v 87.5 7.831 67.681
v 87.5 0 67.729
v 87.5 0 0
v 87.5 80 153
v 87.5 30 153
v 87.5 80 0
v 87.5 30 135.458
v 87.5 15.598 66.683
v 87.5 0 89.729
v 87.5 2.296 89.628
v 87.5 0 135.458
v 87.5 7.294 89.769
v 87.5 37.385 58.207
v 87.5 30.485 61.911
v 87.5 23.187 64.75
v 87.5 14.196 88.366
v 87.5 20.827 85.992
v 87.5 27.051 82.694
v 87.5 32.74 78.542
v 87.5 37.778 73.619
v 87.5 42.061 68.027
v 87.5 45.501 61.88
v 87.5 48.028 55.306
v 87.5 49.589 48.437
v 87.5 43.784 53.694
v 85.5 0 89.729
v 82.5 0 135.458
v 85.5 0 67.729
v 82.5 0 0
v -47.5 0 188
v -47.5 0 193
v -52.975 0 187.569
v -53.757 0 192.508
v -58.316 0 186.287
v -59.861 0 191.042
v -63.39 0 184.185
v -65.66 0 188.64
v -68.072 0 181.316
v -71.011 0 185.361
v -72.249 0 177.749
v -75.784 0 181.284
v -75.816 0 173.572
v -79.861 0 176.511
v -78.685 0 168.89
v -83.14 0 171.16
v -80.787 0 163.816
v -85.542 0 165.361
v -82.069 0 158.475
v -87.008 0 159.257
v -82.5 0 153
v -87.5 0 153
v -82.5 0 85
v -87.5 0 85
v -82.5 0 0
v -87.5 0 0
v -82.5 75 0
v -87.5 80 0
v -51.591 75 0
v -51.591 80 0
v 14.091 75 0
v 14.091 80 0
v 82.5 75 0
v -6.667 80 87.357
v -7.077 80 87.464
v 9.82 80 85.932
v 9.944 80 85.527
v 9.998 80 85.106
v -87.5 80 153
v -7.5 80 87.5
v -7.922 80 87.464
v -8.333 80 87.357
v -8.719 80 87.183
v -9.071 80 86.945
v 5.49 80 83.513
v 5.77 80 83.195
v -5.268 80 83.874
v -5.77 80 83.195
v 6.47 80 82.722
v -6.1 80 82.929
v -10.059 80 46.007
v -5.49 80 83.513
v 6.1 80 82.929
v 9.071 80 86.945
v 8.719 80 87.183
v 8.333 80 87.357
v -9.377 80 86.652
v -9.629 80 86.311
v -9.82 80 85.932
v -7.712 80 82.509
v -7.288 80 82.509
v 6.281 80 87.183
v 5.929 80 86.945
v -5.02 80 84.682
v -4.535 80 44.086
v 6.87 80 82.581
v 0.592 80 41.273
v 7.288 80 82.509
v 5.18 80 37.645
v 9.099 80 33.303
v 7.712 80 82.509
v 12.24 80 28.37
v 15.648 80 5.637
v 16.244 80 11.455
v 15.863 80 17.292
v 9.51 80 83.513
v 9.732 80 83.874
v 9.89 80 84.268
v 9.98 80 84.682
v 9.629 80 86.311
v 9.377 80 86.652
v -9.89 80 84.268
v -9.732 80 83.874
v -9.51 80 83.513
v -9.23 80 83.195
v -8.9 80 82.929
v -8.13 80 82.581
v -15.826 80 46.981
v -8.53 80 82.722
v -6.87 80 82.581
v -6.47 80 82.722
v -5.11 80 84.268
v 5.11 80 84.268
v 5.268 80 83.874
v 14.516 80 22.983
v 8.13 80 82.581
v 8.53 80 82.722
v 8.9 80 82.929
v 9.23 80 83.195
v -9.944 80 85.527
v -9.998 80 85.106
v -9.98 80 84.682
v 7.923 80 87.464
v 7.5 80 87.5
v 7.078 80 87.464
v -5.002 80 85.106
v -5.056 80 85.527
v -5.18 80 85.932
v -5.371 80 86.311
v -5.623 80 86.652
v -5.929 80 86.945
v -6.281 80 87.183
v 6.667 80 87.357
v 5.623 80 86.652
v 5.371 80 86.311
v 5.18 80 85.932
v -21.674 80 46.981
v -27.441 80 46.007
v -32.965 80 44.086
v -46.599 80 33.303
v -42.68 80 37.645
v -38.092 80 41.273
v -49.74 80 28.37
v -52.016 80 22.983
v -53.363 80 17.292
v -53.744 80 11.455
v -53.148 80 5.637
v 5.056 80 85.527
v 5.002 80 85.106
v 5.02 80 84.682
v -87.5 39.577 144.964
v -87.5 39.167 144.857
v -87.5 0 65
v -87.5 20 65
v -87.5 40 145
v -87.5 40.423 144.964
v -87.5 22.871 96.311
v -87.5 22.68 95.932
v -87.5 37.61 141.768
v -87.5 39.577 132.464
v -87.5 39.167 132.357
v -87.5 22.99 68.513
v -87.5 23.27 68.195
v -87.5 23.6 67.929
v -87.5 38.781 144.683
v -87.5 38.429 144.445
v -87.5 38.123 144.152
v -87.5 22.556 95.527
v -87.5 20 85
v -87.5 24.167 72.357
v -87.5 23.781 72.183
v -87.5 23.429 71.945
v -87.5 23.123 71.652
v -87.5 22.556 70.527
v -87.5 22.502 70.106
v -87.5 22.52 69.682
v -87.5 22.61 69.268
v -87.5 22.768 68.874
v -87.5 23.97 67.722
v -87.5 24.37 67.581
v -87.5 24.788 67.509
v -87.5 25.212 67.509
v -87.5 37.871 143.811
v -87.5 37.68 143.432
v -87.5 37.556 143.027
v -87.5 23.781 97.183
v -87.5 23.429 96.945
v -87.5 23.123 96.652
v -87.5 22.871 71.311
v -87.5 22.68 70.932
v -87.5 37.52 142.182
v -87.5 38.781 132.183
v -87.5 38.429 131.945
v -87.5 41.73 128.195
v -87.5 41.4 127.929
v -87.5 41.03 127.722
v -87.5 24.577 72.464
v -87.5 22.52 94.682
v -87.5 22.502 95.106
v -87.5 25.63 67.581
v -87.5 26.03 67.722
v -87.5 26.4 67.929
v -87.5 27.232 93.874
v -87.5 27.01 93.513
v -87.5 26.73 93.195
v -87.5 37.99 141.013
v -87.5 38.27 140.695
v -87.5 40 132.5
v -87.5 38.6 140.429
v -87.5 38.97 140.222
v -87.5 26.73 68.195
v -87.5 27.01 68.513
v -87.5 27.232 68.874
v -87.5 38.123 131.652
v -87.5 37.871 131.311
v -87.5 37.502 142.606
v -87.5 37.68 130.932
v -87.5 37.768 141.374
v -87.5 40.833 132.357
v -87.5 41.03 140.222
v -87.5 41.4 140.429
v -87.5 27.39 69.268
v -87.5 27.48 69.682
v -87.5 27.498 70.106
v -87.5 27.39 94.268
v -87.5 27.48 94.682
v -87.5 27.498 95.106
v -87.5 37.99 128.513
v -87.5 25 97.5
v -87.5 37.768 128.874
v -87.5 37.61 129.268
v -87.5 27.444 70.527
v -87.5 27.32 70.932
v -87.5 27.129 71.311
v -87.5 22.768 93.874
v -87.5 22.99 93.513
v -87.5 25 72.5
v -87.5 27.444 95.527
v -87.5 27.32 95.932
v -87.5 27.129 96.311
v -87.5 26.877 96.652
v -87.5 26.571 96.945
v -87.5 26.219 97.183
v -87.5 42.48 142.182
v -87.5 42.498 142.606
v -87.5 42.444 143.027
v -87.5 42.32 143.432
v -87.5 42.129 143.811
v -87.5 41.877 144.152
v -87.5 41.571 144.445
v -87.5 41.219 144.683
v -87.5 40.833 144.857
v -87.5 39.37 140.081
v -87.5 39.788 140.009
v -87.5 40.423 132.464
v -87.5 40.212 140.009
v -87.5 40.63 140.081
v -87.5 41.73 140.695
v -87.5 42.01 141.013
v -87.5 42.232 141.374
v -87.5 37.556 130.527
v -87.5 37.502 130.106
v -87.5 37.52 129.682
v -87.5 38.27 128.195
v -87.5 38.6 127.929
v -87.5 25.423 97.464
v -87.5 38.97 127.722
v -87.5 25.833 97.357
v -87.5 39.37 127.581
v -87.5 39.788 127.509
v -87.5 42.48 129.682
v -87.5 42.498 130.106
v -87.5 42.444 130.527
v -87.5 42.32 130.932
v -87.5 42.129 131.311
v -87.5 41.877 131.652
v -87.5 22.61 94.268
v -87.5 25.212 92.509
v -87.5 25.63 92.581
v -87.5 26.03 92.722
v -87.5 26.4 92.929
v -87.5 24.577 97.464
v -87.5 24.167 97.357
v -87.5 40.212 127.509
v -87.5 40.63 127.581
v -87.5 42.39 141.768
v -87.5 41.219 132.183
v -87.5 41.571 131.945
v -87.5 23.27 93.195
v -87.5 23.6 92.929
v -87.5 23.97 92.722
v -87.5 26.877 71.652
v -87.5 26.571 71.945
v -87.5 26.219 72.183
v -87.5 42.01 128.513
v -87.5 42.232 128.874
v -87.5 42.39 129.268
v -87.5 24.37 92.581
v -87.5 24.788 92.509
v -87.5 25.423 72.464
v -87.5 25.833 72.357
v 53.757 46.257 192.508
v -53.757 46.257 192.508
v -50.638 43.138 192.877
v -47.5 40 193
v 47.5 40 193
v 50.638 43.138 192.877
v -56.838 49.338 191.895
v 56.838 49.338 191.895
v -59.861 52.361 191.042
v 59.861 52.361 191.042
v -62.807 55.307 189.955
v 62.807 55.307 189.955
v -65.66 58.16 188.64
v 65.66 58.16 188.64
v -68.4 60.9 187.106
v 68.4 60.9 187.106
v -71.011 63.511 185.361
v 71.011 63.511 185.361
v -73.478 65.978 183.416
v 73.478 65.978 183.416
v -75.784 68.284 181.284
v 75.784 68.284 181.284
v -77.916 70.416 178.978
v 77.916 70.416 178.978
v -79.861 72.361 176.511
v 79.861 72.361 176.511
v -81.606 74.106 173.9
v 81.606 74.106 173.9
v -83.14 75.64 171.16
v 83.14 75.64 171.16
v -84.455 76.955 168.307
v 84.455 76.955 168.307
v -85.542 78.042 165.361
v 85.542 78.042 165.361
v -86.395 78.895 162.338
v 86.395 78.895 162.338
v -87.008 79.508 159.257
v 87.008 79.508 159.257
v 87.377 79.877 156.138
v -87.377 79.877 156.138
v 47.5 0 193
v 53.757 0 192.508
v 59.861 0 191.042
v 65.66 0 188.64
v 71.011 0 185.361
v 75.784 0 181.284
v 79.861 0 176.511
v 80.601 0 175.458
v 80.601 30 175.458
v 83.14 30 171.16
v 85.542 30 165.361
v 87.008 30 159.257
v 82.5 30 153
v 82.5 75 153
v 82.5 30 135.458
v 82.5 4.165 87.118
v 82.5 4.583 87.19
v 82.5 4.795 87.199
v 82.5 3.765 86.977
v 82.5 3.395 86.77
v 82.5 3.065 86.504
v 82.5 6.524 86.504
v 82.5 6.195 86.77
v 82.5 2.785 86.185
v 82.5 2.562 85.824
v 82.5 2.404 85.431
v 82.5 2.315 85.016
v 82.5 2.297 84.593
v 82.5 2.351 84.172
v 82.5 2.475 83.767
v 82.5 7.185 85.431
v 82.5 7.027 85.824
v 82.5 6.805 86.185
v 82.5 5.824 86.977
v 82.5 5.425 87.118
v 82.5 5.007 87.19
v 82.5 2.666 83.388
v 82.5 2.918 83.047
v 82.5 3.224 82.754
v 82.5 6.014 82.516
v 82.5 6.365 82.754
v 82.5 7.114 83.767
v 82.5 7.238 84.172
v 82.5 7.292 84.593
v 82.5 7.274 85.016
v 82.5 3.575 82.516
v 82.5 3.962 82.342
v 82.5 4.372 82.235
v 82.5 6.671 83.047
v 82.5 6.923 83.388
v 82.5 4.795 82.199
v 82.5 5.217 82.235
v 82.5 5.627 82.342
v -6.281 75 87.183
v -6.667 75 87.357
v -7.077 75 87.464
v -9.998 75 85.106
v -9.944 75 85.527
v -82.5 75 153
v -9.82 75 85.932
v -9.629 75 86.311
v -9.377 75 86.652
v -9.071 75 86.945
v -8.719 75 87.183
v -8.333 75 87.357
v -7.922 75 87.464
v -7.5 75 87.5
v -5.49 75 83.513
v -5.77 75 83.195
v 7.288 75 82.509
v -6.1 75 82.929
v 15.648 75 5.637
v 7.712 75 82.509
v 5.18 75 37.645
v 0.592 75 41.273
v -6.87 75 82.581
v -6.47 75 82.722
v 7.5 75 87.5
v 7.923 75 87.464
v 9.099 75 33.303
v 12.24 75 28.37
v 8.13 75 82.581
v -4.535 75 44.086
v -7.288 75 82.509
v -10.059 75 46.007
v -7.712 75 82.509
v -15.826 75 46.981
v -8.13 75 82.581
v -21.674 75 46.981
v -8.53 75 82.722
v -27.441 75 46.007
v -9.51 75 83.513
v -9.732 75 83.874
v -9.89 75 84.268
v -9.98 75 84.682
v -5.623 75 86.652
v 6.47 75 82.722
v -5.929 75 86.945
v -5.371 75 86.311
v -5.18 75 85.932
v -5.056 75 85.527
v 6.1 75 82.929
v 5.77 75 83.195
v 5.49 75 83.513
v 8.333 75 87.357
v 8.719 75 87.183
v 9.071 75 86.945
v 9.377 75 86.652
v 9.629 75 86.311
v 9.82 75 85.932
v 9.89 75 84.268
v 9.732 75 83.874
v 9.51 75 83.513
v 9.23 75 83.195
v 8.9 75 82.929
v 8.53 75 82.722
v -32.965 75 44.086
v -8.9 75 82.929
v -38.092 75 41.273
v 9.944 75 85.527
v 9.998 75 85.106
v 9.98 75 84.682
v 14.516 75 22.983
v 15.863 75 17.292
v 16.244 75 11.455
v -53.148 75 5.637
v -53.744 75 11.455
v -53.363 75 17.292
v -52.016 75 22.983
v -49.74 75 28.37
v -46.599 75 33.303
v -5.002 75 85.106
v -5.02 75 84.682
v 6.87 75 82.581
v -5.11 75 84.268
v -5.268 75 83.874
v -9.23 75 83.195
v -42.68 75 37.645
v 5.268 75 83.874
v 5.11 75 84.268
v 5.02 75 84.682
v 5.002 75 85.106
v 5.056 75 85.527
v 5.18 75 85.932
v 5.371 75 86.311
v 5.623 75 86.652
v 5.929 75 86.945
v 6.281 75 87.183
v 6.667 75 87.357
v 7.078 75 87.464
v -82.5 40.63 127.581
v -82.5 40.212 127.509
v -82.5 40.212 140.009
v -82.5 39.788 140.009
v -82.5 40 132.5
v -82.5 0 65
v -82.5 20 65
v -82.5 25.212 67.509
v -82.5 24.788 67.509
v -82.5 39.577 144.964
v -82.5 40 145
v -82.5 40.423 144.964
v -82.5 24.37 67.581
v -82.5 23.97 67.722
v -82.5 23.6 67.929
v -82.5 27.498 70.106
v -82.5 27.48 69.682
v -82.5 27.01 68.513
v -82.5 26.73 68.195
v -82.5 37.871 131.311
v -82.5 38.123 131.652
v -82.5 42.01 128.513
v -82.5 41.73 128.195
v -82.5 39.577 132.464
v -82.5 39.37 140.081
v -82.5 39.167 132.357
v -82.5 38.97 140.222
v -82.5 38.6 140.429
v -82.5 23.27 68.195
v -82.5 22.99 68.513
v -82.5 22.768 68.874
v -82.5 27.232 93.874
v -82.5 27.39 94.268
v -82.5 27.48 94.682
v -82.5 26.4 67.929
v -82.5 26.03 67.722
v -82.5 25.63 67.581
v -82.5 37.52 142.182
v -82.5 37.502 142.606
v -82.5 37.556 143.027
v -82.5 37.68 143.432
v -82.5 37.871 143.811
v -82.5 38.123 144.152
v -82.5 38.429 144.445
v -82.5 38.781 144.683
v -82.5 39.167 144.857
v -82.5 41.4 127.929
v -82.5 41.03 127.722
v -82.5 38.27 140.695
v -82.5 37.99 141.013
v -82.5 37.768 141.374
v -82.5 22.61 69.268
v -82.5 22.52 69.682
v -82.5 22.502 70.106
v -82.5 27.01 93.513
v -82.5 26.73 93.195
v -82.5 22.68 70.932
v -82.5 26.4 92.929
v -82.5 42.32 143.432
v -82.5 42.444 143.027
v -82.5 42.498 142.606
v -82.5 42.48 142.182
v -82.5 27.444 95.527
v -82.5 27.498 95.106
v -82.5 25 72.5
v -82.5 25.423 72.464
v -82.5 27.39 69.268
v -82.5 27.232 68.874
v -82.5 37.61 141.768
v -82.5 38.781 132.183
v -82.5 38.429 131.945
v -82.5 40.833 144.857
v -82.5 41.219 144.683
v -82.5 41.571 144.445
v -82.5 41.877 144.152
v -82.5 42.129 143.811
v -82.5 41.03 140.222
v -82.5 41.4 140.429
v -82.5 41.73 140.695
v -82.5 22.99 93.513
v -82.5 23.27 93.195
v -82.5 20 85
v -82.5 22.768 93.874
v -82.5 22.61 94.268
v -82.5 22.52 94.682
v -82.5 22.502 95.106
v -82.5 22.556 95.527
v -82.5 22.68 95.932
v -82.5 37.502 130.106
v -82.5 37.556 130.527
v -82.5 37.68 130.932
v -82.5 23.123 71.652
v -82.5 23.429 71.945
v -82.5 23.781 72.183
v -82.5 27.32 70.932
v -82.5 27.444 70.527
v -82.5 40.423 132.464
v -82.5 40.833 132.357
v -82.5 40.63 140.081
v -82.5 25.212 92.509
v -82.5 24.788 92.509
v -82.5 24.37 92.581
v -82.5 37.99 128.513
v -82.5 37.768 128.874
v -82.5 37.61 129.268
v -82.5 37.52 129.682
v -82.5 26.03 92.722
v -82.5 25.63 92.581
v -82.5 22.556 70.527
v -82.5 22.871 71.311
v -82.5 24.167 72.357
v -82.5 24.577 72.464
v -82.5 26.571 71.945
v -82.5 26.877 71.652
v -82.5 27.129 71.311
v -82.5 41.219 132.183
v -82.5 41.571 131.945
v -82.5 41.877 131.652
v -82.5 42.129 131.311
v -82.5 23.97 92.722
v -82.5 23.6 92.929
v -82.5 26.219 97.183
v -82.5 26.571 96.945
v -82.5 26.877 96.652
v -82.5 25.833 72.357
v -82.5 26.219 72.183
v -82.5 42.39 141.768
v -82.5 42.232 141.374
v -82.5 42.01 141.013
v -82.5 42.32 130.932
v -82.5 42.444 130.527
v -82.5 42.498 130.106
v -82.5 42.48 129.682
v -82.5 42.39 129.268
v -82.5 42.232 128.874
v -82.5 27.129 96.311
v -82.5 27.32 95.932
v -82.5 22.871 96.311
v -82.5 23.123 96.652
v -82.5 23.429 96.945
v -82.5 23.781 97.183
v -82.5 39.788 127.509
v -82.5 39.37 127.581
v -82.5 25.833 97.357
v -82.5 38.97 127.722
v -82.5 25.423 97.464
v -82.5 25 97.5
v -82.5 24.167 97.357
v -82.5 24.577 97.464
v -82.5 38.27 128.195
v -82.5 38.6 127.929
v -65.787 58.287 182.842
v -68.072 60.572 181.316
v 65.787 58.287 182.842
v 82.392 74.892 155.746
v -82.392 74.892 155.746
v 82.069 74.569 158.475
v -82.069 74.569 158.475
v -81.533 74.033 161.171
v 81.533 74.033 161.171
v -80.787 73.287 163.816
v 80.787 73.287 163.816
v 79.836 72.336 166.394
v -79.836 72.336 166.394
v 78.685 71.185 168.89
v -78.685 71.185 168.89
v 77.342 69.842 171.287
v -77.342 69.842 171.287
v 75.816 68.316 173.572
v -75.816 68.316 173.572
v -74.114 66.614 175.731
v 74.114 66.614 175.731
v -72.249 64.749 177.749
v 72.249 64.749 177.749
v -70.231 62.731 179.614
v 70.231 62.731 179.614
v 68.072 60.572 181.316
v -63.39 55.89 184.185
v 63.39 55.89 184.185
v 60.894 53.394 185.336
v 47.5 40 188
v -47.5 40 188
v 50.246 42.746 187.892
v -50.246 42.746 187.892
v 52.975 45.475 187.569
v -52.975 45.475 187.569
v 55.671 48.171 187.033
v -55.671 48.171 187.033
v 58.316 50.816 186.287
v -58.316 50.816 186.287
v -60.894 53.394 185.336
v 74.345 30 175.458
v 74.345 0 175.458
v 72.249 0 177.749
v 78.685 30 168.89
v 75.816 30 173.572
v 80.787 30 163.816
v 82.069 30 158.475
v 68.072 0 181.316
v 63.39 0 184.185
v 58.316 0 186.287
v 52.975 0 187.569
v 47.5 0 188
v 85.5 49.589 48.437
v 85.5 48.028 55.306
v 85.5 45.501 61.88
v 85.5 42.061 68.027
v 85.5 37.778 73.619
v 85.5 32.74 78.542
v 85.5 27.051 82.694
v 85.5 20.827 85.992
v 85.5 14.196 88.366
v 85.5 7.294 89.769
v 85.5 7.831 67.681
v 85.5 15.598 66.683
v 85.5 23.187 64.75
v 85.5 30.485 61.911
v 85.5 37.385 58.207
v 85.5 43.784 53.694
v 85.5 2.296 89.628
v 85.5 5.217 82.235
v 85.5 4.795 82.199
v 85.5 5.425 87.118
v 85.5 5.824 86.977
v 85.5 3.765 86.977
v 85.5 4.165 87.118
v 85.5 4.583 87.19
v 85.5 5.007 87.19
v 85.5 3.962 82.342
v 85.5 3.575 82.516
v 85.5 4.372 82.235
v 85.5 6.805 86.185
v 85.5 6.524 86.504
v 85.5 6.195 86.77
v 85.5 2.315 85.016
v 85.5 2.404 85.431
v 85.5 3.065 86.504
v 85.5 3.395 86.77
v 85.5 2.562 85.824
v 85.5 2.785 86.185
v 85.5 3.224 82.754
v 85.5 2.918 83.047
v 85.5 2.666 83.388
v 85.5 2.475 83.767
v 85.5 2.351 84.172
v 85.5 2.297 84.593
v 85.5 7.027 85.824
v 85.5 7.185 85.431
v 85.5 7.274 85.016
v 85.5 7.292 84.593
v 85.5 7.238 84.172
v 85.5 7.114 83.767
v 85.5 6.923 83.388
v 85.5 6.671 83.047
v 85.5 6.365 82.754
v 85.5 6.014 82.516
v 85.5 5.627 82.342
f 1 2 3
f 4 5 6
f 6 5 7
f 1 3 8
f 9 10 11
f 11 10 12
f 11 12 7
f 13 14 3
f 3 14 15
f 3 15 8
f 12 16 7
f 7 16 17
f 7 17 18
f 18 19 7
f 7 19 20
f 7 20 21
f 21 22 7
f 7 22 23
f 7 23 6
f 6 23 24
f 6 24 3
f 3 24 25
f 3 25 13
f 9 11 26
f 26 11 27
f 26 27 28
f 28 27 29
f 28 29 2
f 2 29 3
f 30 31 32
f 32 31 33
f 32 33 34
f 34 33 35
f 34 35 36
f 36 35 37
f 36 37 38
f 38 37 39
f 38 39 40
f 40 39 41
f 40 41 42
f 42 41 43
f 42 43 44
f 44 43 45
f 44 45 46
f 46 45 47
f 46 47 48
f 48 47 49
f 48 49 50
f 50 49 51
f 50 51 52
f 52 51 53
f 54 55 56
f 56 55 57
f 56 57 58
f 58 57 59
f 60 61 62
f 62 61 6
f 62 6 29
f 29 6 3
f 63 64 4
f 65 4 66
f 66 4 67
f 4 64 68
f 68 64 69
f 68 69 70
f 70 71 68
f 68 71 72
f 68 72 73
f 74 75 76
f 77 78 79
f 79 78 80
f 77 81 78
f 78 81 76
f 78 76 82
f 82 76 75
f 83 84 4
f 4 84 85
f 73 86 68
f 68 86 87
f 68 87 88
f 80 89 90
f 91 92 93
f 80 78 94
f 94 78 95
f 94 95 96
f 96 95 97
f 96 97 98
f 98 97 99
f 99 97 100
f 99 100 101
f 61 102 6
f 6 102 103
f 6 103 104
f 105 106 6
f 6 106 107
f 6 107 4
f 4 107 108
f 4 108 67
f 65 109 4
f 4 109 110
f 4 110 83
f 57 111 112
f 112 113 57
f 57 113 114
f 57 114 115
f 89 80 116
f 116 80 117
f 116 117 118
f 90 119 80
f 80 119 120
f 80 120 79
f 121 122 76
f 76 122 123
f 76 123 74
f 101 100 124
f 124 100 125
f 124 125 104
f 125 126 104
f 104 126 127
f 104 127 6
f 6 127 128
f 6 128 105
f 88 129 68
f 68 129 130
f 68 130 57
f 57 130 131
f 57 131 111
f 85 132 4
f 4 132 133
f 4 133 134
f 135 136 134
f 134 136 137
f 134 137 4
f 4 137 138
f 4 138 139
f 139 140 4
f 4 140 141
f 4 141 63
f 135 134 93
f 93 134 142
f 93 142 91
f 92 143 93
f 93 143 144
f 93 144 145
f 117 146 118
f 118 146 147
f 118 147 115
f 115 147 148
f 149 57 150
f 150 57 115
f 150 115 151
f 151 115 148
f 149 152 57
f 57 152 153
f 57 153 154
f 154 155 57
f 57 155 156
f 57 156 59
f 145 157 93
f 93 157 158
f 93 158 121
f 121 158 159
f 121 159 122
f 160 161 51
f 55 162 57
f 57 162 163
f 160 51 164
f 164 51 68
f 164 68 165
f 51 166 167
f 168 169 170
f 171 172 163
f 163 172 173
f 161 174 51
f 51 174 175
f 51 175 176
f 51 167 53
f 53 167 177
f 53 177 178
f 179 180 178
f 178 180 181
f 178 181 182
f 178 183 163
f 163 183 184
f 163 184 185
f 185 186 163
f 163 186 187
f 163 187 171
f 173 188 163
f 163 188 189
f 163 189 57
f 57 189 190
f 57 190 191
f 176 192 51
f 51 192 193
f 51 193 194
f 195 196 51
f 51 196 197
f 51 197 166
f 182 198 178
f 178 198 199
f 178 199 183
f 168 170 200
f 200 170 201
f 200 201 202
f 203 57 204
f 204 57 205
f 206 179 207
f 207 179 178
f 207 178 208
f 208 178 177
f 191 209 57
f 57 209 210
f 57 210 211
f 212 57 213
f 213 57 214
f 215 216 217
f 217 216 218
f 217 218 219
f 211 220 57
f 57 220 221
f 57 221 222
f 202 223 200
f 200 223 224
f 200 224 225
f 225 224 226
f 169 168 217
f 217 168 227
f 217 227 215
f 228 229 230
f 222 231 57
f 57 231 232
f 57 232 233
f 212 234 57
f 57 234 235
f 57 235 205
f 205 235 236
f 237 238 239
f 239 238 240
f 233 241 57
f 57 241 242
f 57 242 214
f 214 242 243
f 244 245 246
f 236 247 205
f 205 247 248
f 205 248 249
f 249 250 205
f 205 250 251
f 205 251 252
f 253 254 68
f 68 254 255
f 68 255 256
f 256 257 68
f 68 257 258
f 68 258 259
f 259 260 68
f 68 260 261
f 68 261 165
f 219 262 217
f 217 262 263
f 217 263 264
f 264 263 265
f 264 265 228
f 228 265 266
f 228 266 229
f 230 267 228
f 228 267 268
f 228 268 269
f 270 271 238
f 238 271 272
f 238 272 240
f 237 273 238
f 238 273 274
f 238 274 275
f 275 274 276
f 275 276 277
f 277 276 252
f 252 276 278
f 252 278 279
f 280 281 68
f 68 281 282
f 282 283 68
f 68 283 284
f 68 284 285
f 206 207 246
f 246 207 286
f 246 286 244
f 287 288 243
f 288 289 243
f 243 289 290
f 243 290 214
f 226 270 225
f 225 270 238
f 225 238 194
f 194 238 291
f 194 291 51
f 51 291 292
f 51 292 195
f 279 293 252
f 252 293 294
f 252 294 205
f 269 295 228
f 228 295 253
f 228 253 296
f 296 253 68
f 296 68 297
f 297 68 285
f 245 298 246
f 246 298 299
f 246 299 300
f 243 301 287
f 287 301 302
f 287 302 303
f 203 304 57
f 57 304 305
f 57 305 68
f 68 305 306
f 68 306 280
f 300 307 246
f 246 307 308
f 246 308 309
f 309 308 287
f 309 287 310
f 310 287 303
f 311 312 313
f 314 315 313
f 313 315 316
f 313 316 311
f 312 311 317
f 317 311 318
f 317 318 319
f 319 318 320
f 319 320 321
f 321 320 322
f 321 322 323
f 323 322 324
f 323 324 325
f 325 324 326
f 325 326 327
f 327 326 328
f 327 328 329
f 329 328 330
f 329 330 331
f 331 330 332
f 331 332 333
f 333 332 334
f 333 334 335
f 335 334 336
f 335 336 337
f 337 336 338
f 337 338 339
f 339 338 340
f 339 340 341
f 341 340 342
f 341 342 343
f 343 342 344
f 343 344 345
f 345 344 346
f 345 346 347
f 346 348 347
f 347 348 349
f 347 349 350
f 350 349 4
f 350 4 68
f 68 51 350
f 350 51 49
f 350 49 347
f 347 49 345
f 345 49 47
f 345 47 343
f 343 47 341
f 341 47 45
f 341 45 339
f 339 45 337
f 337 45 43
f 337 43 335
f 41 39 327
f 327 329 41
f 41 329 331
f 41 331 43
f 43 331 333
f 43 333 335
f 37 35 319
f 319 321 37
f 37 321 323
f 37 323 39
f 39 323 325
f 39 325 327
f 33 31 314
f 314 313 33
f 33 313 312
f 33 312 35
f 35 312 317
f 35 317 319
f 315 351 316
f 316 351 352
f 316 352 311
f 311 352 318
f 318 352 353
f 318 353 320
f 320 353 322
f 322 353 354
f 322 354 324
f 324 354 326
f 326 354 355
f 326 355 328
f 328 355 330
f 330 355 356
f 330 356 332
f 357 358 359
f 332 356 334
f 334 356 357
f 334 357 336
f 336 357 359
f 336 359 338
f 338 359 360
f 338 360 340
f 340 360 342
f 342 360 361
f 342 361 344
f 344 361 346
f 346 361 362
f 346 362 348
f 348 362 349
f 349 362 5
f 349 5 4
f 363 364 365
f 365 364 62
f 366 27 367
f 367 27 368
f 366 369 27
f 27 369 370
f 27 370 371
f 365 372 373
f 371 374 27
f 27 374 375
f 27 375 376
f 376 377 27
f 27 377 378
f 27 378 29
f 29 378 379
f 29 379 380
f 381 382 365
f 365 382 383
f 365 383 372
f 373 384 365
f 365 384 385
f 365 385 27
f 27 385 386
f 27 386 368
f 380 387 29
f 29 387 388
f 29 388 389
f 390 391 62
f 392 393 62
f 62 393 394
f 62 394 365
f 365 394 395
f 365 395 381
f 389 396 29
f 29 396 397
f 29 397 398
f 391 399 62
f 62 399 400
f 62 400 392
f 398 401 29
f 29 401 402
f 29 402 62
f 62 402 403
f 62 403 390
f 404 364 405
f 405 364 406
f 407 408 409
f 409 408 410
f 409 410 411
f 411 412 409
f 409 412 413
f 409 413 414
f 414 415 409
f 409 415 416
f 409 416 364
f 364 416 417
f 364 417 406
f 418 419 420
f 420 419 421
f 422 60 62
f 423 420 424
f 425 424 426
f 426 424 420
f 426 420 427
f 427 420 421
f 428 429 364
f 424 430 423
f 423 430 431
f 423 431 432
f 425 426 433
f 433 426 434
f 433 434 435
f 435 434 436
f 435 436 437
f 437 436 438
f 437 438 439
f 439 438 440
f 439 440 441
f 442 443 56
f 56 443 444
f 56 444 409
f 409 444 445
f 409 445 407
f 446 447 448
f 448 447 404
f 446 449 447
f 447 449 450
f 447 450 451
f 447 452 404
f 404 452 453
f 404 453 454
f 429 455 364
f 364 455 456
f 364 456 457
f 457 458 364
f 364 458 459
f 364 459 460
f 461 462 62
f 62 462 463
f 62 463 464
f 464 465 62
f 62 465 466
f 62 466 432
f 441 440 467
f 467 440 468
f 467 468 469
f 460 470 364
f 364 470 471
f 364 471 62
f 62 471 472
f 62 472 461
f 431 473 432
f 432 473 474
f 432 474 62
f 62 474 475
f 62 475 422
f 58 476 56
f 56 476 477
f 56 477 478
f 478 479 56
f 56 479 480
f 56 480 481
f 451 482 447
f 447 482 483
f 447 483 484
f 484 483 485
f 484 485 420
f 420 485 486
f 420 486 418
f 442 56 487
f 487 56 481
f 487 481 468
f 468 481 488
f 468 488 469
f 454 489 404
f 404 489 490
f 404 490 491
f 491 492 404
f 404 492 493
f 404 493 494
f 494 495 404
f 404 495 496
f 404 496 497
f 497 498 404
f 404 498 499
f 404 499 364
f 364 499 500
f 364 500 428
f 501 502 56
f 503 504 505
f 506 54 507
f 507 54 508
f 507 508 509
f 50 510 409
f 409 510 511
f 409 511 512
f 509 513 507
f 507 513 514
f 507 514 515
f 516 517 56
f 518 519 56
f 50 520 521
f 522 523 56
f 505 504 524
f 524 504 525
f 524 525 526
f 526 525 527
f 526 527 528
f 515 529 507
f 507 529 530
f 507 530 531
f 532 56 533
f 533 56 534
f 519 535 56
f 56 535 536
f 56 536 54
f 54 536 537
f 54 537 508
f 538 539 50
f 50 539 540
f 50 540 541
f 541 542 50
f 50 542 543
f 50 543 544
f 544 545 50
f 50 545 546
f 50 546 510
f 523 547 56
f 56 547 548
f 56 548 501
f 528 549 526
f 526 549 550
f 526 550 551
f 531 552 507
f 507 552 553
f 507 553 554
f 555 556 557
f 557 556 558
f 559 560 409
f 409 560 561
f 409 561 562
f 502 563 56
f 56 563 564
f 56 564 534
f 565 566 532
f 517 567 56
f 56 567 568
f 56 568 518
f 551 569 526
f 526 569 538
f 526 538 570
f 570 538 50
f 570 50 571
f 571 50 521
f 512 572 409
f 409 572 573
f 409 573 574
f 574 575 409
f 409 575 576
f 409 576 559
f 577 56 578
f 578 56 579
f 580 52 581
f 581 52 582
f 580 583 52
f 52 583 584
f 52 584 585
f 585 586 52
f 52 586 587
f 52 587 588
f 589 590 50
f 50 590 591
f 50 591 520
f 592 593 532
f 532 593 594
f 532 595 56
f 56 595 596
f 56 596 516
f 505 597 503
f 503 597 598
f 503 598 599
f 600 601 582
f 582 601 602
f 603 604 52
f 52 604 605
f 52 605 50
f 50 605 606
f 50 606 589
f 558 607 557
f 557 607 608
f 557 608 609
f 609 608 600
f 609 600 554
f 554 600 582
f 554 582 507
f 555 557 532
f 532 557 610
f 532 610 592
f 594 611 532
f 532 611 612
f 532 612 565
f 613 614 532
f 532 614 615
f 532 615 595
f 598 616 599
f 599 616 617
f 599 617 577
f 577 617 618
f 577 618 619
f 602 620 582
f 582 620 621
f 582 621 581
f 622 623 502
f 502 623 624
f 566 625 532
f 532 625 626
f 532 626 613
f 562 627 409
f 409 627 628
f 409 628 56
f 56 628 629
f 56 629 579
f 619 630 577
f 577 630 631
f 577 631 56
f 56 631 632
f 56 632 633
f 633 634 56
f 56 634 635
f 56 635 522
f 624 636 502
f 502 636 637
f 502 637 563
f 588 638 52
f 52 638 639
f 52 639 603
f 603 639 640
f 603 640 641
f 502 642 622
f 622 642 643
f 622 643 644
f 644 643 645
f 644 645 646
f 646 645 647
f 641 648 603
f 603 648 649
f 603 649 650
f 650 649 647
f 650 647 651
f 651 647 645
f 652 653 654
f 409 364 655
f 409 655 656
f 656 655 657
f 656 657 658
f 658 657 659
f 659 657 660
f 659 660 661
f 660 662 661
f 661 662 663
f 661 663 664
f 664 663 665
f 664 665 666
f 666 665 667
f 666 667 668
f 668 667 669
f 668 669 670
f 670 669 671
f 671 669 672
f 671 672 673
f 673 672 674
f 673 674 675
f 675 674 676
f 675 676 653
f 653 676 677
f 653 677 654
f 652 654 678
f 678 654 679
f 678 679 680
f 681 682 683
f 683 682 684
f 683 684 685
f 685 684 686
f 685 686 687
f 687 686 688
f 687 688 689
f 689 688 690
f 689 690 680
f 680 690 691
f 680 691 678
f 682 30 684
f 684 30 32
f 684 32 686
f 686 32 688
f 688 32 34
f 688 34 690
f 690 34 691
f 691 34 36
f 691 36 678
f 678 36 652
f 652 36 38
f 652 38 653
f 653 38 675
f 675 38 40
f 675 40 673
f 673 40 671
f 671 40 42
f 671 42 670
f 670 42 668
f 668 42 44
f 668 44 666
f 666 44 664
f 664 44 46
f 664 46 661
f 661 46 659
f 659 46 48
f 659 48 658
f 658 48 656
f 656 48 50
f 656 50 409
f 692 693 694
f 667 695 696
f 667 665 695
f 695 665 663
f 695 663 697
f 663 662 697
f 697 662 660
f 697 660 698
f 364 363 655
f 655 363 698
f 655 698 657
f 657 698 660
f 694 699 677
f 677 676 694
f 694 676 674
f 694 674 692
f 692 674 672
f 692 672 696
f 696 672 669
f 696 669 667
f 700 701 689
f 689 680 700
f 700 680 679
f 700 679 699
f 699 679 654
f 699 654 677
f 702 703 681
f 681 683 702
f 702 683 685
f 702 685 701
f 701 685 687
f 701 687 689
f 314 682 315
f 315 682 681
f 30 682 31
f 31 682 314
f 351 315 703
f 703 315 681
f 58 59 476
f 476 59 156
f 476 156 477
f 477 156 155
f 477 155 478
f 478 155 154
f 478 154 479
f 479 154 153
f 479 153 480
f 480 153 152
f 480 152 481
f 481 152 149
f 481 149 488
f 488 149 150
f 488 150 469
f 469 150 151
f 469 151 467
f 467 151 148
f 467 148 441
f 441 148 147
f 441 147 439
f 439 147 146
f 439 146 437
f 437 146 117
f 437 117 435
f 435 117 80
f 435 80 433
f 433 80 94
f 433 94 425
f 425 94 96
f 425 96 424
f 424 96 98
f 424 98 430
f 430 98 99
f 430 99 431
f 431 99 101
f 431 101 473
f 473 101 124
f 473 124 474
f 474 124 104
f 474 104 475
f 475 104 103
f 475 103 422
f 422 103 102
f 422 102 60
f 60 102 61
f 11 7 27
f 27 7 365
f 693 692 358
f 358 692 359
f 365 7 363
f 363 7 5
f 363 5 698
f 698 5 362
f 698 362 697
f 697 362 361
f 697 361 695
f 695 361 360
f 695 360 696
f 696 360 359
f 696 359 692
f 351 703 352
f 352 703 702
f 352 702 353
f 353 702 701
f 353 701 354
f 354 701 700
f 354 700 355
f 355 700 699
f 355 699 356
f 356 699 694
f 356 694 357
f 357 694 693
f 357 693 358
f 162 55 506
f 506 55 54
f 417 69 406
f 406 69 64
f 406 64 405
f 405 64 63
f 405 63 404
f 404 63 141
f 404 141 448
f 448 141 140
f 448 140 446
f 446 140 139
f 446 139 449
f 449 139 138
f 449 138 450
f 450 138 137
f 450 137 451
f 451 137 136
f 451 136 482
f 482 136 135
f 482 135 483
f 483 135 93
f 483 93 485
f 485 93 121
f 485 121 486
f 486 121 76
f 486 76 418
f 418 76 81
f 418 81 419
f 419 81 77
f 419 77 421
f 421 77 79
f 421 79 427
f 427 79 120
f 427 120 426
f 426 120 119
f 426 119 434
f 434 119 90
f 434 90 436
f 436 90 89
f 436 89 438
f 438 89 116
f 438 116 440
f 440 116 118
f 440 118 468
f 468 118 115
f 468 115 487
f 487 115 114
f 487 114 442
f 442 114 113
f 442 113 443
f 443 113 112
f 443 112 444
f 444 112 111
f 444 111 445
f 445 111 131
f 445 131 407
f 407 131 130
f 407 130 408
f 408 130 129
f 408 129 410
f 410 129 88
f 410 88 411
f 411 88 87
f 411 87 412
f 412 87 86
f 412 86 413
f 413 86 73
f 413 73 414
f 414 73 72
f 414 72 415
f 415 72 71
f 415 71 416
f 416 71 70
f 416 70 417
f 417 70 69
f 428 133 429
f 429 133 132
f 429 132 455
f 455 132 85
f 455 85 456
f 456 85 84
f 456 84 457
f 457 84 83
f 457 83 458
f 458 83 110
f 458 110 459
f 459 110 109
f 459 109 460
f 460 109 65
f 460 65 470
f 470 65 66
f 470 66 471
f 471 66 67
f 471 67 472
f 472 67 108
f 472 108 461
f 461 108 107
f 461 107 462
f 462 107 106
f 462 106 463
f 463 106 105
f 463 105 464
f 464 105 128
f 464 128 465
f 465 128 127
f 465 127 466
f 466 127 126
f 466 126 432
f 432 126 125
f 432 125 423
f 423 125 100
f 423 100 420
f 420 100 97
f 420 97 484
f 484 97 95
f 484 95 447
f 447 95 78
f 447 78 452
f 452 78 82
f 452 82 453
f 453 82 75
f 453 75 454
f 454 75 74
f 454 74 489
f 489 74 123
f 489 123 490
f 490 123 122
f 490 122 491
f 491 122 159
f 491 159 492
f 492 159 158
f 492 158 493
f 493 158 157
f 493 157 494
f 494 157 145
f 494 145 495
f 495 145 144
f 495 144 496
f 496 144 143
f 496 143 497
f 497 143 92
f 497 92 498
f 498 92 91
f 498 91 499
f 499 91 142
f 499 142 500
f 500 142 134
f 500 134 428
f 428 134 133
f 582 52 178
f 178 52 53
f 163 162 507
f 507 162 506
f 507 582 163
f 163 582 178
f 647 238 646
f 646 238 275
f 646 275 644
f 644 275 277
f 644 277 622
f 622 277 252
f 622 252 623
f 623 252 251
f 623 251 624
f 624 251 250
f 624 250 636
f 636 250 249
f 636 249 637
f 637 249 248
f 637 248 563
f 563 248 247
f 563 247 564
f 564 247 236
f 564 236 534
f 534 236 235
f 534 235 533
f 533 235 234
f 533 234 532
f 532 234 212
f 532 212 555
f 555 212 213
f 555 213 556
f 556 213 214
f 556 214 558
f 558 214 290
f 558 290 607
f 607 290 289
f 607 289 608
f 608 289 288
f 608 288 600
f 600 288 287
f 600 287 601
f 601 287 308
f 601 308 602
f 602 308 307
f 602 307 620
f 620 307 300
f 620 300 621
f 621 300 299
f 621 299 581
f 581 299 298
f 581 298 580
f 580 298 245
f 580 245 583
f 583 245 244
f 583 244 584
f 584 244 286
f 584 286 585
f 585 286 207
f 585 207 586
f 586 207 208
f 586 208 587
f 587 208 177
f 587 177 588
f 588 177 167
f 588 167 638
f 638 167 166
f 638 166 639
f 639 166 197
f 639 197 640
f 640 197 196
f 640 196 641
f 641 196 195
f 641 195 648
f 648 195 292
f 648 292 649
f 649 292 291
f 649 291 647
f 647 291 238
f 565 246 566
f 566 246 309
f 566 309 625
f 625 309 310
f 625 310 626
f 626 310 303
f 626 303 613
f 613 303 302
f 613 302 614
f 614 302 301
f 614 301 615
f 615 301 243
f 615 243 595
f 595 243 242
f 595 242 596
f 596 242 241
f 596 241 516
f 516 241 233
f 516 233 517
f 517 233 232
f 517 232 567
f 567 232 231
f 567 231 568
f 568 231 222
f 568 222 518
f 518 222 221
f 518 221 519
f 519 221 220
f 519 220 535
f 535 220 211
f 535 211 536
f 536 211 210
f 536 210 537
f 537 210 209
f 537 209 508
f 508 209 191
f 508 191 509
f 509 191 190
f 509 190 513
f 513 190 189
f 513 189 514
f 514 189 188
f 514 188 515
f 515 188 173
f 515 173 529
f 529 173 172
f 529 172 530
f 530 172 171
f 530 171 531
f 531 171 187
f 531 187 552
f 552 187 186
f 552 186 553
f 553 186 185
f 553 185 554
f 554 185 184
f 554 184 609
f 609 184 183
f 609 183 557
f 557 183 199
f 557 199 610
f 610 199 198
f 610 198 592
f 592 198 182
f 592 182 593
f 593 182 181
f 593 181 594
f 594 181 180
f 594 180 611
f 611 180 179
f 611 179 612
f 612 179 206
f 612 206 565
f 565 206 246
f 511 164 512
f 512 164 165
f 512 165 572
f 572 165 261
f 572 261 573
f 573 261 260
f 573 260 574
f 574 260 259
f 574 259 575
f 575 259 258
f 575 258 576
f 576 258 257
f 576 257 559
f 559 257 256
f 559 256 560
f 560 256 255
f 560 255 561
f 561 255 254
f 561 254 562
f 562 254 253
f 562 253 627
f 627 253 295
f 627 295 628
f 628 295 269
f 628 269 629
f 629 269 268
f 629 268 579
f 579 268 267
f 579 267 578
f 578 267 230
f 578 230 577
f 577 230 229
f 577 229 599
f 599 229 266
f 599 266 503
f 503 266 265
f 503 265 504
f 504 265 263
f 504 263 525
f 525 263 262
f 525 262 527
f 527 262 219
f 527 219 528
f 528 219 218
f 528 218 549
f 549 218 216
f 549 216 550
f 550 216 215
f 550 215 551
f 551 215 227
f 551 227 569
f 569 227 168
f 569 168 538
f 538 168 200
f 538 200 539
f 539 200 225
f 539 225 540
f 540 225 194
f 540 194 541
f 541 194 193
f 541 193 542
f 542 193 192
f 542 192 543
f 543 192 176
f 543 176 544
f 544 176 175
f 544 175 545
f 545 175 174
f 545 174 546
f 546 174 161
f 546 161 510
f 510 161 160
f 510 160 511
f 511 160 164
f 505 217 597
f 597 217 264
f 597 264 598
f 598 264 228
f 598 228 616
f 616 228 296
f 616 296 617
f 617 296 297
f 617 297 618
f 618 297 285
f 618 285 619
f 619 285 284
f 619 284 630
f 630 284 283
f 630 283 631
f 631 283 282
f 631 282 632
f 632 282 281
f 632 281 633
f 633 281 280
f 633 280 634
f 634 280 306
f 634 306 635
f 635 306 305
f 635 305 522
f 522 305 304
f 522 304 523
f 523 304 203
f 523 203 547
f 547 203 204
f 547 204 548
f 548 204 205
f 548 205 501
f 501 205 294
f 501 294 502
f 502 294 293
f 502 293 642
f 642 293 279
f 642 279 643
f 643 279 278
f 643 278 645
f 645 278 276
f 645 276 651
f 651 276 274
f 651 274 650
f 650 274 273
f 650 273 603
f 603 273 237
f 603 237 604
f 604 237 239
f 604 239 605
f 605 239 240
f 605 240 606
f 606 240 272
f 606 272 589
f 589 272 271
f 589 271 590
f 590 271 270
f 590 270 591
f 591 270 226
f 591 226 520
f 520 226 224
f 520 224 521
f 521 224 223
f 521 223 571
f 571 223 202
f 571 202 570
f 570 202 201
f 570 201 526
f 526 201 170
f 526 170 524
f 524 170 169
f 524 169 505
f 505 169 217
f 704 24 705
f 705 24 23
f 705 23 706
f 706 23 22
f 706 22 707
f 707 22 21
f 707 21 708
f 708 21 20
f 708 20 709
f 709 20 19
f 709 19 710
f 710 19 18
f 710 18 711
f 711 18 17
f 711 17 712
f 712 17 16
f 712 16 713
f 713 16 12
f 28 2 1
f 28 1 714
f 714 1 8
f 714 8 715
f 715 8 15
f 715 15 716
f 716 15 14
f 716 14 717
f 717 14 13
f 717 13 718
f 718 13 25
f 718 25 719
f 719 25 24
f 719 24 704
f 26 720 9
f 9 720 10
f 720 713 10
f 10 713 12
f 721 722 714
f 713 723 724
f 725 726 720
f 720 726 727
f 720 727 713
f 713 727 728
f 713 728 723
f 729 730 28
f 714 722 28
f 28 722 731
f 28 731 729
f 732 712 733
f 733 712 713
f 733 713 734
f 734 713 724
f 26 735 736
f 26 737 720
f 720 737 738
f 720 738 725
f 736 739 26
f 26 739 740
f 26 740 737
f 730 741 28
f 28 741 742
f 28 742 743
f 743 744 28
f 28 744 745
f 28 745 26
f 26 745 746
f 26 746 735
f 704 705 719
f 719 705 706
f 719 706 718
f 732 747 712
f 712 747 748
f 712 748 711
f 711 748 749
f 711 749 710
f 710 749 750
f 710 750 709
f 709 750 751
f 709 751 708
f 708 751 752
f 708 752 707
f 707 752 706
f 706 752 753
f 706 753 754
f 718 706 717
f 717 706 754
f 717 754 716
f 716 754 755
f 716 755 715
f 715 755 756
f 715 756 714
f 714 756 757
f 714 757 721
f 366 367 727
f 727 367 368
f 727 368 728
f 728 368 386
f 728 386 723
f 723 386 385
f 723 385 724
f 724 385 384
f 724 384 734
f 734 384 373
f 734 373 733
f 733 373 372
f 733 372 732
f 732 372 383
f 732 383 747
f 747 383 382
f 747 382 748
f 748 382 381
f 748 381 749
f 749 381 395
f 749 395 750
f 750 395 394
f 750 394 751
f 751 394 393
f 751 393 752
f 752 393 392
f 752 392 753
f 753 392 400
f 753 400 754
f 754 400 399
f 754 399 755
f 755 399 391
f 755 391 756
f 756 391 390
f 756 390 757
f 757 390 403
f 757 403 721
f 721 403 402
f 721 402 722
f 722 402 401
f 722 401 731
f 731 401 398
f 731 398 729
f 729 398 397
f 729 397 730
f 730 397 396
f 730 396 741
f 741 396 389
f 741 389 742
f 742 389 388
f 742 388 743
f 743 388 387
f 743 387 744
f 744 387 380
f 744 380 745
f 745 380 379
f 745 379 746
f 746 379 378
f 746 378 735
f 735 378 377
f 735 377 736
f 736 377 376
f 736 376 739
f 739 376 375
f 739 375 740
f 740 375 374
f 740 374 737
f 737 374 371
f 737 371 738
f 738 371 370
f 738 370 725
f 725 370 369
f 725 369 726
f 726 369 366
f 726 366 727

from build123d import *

# Parameters (mm, degrees)
SKETCH_1_W           = 175
SKETCH_1_H           = 160
EXTRUDE_1_DEPTH      = 193
FILLET_8_R           = 40
SHELL_2_T            = -5
SKETCH_9_W           = 95
SKETCH_9_H           = 80
CUT_EXTRUDE_3_DEPTH  = 10
SKETCH_10_R          = 35
CUT_EXTRUDE_4_DEPTH  = 160
SKETCH_12_W          = 40
SKETCH_12_H          = 60
CUT_EXTRUDE_5_DEPTH  = 20
CUT_EXTRUDE_6_DEPTH  = 80
SKETCH_15_R          = 2.5
CUT_EXTRUDE_7_DEPTH  = 5
SKETCH_17_R          = 2.5
CUT_EXTRUDE_9_DEPTH  = 5
CUT_EXTRUDE_10_DEPTH = 2
SKETCH_23_R          = 2.5
CUT_EXTRUDE_13_DEPTH = 5


with BuildPart() as part:
    # 草圖1 → 填料-伸長1 (new body)
    with BuildSketch(Plane.XY):
        Rectangle(SKETCH_1_W, SKETCH_1_H)
    extrude(amount=EXTRUDE_1_DEPTH)

    # 圓角8
    fillet_8_edges = [part.edges().sort_by_distance(p)[0] for p in [
        (-87.5, 0, 193),
        (0, -80, 193),
        (87.5, 0, 193),
        (0, 80, 193),
    ]]
    fillet(fillet_8_edges, radius=FILLET_8_R)

    # 薄殼2
    shell_2_openings = [part.faces().sort_by_distance(p)[0] for p in [
        (0, 0, 0),
    ]]
    offset(amount=SHELL_2_T, openings=shell_2_openings)

    # 草圖9 → 除料-伸長3 (cut)
    with BuildSketch(Plane.XY.offset(193)):
        Rectangle(SKETCH_9_W, SKETCH_9_H)
    extrude(amount=-CUT_EXTRUDE_3_DEPTH, mode=Mode.SUBTRACT)

    # 草圖10 → 除料-伸長4 (cut)
    with BuildSketch(Plane(origin=(0, 80, 0), x_dir=(1, 0, 0), z_dir=(0, 1, 0))):
        with Locations((-18.75, -12.103072957)):
            Circle(SKETCH_10_R)
    extrude(amount=-CUT_EXTRUDE_4_DEPTH, mode=Mode.SUBTRACT)

    # 草圖12 → 除料-伸長5 (cut)
    with BuildSketch(Plane(origin=(90, 0, 0), x_dir=(0, 0, -1), z_dir=(1, 0, 0))):
        with Locations((-155.457670656, 0)):
            Rectangle(SKETCH_12_W, SKETCH_12_H)
    extrude(amount=-CUT_EXTRUDE_5_DEPTH, mode=Mode.SUBTRACT)

    # 草圖4 → 除料-伸長6 (cut)
    with BuildSketch(Plane(origin=(0, 0, 0), x_dir=(1, 0, 0), z_dir=(0, 1, 0))):
        Polygon((0, -200), (-165, -200), (-165, 0), (110, 0), (110, -200), align=None)
    extrude(amount=-CUT_EXTRUDE_6_DEPTH, mode=Mode.SUBTRACT)

    # 草圖15 → 除料-伸長7 (cut)
    with BuildSketch(Plane(origin=(0, 80, 0), x_dir=(1, 0, 0), z_dir=(0, 1, 0))):
        with Locations(Location((7.5, -85, 0), (0, 0, 270))):
            Circle(SKETCH_15_R)
        with Locations(Location((-7.5, -85, 0), (0, 0, 270))):
            Circle(SKETCH_15_R)
    extrude(amount=-CUT_EXTRUDE_7_DEPTH, mode=Mode.SUBTRACT)

    # 草圖17 → 除料-伸長9 (cut)
    with BuildSketch(Plane.ZY.offset(87.5)):
        with Locations((130, 40)):
            Circle(SKETCH_17_R)
        with Locations((142.5, 40)):
            Circle(SKETCH_17_R)
        with Locations((70, 25)):
            Circle(SKETCH_17_R)
        with Locations((95, 25)):
            Circle(SKETCH_17_R)
        Polygon((65, 0), (65, -10), (85, -10), (85, 20), (65, 20), align=None)
    extrude(amount=-CUT_EXTRUDE_9_DEPTH, mode=Mode.SUBTRACT)

    # 草圖18 → 除料-伸長10 (cut)
    with BuildSketch(Plane(origin=(87.5, 0, 0), x_dir=(0, 0, -1), z_dir=(1, 0, 0))):
        with BuildLine():
            Line((-67.728835328, 0), (-89.728835328, 0))
            Line((-89.728835328, 0), (-89.62835003, 2.295574964))
            Line((-89.62835003, 2.295574964), (-89.76926499, 7.293588867))
            ThreePointArc((-89.76926499, 7.293588867), (-76.170437541, 35.347471494), (-48.437401965, 49.589212124))
            ThreePointArc((-48.437401965, 49.589212124), (-63.441387718, 26.87910562), (-67.728835328, 0))
        make_face()
    extrude(amount=-CUT_EXTRUDE_10_DEPTH, mode=Mode.SUBTRACT)

    # 草圖23 → 除料-伸長13 (cut)
    with BuildSketch(Plane(origin=(85.5, 0, 0), x_dir=(0, 0, -1), z_dir=(1, 0, 0))):
        with Locations((-84.69880751, 4.794581915)):
            Circle(SKETCH_23_R)
    extrude(amount=-CUT_EXTRUDE_13_DEPTH, mode=Mode.SUBTRACT)


solid = part.part
